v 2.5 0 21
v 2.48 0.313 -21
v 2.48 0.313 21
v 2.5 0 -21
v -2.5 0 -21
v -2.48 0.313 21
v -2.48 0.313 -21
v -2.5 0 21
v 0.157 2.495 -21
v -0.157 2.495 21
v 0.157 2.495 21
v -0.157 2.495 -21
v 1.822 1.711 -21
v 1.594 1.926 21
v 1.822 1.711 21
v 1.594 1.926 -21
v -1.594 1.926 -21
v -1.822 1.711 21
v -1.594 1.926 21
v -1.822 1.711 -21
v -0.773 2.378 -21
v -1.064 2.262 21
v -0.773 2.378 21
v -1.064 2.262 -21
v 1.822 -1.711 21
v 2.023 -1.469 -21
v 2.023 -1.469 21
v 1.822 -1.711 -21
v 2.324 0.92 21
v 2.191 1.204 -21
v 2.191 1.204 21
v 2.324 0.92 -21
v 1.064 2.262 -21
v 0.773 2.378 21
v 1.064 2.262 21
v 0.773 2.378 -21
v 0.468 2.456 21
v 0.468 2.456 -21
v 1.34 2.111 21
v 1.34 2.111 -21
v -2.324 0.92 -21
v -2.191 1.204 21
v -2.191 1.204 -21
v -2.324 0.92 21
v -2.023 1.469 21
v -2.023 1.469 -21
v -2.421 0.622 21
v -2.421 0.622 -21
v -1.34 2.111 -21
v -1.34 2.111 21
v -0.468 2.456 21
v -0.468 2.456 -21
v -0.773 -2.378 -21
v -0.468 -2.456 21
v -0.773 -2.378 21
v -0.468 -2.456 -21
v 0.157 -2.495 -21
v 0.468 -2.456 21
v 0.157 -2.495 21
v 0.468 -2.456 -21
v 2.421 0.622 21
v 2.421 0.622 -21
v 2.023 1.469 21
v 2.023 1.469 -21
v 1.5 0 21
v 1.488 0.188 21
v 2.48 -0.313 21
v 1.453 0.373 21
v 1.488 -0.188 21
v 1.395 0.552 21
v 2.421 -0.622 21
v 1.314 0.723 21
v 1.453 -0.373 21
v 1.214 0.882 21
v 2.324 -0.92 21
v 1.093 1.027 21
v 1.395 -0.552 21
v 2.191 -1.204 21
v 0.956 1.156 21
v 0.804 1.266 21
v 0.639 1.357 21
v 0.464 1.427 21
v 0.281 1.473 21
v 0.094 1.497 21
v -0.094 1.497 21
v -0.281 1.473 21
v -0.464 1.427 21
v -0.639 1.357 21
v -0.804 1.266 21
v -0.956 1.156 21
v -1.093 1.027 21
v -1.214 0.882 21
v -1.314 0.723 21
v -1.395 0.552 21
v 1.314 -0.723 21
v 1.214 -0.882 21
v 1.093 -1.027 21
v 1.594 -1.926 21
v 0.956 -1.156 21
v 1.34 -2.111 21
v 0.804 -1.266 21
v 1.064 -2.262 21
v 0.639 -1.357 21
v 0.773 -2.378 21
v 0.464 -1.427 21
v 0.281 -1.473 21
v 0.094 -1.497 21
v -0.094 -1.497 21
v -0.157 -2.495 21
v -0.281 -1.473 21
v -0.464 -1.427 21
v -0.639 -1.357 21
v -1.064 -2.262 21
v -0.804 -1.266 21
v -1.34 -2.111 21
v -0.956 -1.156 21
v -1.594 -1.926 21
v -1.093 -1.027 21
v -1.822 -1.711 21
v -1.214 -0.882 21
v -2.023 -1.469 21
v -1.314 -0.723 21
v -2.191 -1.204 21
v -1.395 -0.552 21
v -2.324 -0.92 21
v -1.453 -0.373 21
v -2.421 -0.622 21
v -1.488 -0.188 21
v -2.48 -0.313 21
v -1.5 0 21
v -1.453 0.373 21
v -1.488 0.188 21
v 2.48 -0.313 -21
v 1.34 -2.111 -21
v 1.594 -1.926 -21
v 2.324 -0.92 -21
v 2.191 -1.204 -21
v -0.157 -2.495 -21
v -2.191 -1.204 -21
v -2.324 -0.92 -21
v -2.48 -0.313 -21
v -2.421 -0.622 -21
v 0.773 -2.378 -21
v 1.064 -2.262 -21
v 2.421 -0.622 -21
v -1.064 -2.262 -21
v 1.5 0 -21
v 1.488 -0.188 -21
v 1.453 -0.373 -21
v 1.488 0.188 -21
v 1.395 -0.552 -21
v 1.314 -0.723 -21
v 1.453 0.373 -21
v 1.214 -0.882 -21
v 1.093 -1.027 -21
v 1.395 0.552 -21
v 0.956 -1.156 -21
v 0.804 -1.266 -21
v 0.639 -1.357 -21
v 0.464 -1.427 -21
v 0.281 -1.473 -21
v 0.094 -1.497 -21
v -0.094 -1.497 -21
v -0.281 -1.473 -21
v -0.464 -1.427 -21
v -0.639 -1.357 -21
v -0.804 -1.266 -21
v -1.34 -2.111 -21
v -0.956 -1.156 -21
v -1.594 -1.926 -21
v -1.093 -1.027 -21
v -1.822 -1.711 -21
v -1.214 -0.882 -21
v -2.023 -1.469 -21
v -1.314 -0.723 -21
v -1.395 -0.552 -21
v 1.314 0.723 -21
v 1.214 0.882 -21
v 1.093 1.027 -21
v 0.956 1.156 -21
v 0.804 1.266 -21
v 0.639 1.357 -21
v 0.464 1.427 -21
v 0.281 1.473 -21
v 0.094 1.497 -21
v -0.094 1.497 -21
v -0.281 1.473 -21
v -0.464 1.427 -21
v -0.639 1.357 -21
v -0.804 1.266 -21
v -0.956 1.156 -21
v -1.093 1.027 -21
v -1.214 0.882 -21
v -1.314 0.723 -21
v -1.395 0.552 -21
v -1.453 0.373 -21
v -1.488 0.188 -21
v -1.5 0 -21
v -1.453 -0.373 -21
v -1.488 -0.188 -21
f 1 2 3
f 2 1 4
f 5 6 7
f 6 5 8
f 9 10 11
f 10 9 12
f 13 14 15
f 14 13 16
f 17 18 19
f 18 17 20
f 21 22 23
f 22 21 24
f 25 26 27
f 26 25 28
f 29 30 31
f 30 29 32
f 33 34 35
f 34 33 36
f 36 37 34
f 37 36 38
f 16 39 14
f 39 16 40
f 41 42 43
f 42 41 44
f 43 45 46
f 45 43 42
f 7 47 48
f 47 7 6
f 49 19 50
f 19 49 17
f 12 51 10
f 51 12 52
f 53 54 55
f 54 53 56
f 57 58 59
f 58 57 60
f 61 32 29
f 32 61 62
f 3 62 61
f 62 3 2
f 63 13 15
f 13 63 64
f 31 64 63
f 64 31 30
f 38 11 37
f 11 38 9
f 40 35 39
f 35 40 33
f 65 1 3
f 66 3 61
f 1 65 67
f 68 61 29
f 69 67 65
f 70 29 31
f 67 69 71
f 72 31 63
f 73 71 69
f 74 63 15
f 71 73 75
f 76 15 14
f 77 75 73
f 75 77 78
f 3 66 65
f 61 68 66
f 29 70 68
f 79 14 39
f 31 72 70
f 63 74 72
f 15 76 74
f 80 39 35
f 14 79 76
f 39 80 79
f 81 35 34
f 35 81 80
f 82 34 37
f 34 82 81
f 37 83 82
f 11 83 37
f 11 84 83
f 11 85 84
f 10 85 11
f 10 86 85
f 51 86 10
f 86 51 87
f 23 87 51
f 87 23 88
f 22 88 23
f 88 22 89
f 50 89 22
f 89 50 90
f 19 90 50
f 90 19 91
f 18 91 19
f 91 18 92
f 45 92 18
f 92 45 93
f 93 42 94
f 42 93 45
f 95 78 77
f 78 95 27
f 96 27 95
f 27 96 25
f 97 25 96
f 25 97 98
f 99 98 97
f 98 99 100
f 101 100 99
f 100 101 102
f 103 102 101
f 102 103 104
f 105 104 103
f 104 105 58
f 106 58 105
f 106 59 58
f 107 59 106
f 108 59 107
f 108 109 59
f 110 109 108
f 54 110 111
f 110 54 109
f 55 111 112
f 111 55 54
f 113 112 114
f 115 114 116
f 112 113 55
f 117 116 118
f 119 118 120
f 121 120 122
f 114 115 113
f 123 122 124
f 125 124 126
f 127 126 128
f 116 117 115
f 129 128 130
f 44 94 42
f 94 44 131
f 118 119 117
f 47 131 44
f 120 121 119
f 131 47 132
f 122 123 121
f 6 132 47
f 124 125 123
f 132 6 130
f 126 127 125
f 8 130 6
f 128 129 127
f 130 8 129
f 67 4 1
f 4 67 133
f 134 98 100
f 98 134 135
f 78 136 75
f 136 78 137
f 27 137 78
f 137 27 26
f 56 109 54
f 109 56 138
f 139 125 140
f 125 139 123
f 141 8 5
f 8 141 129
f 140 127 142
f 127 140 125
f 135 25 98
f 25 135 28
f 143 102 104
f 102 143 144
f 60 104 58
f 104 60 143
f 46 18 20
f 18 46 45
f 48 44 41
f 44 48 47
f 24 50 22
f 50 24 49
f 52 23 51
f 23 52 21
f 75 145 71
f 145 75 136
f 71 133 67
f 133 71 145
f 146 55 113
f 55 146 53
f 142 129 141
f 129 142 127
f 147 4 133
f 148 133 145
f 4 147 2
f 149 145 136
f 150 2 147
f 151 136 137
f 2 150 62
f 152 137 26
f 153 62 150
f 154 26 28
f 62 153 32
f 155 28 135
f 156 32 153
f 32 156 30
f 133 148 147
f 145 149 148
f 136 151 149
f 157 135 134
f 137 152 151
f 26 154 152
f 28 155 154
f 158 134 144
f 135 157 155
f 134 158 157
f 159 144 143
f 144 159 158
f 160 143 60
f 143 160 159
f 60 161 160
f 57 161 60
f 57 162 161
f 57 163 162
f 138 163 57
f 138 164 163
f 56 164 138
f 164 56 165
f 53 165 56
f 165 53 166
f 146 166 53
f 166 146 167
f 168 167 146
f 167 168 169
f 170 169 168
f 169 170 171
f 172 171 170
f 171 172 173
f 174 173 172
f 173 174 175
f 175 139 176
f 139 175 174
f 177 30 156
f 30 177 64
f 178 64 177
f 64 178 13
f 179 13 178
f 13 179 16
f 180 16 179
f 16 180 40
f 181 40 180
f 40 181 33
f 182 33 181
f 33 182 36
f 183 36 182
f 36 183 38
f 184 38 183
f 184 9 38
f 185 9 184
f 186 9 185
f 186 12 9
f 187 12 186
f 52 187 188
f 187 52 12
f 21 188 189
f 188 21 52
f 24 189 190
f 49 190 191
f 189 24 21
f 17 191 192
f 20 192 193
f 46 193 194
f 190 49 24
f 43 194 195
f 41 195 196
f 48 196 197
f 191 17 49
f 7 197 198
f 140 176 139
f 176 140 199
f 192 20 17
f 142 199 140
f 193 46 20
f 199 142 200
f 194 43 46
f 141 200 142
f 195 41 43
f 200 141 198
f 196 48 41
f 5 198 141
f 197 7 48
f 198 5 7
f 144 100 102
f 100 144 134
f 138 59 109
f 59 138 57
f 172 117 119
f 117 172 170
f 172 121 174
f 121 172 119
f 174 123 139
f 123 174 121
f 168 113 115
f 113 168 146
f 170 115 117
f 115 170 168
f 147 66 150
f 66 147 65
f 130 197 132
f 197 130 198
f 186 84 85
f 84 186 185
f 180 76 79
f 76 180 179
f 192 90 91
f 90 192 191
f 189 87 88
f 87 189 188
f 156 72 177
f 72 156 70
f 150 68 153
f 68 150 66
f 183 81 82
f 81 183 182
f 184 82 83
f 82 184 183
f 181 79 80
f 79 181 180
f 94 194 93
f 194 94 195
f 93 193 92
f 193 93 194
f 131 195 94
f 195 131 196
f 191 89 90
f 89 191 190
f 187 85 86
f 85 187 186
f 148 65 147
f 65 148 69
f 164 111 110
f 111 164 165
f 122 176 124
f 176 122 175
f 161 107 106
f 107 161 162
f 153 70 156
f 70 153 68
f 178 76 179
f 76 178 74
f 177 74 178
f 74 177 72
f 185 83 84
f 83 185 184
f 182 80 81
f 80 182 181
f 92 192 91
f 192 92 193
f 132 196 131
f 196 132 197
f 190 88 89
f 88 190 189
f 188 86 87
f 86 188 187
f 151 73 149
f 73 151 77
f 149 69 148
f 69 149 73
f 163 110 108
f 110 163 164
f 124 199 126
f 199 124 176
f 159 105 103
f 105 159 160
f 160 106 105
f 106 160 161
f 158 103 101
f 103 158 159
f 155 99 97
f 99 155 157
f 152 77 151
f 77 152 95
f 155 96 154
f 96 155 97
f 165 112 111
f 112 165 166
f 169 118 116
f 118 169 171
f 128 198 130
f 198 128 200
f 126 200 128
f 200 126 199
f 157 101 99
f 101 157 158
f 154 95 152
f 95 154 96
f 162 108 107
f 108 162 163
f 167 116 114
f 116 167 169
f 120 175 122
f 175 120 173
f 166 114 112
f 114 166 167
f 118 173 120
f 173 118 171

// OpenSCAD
$fn = 50;


difference() {
	union() {
		translate(v = [0, 0, -21.0000000000]) {
			cylinder(h = 42, r = 2.5000000000);
		}
	}
	union() {
		translate(v = [0, 0, -100.0000000000]) {
			cylinder(h = 200, r = 1.5000000000);
		}
	}
}
